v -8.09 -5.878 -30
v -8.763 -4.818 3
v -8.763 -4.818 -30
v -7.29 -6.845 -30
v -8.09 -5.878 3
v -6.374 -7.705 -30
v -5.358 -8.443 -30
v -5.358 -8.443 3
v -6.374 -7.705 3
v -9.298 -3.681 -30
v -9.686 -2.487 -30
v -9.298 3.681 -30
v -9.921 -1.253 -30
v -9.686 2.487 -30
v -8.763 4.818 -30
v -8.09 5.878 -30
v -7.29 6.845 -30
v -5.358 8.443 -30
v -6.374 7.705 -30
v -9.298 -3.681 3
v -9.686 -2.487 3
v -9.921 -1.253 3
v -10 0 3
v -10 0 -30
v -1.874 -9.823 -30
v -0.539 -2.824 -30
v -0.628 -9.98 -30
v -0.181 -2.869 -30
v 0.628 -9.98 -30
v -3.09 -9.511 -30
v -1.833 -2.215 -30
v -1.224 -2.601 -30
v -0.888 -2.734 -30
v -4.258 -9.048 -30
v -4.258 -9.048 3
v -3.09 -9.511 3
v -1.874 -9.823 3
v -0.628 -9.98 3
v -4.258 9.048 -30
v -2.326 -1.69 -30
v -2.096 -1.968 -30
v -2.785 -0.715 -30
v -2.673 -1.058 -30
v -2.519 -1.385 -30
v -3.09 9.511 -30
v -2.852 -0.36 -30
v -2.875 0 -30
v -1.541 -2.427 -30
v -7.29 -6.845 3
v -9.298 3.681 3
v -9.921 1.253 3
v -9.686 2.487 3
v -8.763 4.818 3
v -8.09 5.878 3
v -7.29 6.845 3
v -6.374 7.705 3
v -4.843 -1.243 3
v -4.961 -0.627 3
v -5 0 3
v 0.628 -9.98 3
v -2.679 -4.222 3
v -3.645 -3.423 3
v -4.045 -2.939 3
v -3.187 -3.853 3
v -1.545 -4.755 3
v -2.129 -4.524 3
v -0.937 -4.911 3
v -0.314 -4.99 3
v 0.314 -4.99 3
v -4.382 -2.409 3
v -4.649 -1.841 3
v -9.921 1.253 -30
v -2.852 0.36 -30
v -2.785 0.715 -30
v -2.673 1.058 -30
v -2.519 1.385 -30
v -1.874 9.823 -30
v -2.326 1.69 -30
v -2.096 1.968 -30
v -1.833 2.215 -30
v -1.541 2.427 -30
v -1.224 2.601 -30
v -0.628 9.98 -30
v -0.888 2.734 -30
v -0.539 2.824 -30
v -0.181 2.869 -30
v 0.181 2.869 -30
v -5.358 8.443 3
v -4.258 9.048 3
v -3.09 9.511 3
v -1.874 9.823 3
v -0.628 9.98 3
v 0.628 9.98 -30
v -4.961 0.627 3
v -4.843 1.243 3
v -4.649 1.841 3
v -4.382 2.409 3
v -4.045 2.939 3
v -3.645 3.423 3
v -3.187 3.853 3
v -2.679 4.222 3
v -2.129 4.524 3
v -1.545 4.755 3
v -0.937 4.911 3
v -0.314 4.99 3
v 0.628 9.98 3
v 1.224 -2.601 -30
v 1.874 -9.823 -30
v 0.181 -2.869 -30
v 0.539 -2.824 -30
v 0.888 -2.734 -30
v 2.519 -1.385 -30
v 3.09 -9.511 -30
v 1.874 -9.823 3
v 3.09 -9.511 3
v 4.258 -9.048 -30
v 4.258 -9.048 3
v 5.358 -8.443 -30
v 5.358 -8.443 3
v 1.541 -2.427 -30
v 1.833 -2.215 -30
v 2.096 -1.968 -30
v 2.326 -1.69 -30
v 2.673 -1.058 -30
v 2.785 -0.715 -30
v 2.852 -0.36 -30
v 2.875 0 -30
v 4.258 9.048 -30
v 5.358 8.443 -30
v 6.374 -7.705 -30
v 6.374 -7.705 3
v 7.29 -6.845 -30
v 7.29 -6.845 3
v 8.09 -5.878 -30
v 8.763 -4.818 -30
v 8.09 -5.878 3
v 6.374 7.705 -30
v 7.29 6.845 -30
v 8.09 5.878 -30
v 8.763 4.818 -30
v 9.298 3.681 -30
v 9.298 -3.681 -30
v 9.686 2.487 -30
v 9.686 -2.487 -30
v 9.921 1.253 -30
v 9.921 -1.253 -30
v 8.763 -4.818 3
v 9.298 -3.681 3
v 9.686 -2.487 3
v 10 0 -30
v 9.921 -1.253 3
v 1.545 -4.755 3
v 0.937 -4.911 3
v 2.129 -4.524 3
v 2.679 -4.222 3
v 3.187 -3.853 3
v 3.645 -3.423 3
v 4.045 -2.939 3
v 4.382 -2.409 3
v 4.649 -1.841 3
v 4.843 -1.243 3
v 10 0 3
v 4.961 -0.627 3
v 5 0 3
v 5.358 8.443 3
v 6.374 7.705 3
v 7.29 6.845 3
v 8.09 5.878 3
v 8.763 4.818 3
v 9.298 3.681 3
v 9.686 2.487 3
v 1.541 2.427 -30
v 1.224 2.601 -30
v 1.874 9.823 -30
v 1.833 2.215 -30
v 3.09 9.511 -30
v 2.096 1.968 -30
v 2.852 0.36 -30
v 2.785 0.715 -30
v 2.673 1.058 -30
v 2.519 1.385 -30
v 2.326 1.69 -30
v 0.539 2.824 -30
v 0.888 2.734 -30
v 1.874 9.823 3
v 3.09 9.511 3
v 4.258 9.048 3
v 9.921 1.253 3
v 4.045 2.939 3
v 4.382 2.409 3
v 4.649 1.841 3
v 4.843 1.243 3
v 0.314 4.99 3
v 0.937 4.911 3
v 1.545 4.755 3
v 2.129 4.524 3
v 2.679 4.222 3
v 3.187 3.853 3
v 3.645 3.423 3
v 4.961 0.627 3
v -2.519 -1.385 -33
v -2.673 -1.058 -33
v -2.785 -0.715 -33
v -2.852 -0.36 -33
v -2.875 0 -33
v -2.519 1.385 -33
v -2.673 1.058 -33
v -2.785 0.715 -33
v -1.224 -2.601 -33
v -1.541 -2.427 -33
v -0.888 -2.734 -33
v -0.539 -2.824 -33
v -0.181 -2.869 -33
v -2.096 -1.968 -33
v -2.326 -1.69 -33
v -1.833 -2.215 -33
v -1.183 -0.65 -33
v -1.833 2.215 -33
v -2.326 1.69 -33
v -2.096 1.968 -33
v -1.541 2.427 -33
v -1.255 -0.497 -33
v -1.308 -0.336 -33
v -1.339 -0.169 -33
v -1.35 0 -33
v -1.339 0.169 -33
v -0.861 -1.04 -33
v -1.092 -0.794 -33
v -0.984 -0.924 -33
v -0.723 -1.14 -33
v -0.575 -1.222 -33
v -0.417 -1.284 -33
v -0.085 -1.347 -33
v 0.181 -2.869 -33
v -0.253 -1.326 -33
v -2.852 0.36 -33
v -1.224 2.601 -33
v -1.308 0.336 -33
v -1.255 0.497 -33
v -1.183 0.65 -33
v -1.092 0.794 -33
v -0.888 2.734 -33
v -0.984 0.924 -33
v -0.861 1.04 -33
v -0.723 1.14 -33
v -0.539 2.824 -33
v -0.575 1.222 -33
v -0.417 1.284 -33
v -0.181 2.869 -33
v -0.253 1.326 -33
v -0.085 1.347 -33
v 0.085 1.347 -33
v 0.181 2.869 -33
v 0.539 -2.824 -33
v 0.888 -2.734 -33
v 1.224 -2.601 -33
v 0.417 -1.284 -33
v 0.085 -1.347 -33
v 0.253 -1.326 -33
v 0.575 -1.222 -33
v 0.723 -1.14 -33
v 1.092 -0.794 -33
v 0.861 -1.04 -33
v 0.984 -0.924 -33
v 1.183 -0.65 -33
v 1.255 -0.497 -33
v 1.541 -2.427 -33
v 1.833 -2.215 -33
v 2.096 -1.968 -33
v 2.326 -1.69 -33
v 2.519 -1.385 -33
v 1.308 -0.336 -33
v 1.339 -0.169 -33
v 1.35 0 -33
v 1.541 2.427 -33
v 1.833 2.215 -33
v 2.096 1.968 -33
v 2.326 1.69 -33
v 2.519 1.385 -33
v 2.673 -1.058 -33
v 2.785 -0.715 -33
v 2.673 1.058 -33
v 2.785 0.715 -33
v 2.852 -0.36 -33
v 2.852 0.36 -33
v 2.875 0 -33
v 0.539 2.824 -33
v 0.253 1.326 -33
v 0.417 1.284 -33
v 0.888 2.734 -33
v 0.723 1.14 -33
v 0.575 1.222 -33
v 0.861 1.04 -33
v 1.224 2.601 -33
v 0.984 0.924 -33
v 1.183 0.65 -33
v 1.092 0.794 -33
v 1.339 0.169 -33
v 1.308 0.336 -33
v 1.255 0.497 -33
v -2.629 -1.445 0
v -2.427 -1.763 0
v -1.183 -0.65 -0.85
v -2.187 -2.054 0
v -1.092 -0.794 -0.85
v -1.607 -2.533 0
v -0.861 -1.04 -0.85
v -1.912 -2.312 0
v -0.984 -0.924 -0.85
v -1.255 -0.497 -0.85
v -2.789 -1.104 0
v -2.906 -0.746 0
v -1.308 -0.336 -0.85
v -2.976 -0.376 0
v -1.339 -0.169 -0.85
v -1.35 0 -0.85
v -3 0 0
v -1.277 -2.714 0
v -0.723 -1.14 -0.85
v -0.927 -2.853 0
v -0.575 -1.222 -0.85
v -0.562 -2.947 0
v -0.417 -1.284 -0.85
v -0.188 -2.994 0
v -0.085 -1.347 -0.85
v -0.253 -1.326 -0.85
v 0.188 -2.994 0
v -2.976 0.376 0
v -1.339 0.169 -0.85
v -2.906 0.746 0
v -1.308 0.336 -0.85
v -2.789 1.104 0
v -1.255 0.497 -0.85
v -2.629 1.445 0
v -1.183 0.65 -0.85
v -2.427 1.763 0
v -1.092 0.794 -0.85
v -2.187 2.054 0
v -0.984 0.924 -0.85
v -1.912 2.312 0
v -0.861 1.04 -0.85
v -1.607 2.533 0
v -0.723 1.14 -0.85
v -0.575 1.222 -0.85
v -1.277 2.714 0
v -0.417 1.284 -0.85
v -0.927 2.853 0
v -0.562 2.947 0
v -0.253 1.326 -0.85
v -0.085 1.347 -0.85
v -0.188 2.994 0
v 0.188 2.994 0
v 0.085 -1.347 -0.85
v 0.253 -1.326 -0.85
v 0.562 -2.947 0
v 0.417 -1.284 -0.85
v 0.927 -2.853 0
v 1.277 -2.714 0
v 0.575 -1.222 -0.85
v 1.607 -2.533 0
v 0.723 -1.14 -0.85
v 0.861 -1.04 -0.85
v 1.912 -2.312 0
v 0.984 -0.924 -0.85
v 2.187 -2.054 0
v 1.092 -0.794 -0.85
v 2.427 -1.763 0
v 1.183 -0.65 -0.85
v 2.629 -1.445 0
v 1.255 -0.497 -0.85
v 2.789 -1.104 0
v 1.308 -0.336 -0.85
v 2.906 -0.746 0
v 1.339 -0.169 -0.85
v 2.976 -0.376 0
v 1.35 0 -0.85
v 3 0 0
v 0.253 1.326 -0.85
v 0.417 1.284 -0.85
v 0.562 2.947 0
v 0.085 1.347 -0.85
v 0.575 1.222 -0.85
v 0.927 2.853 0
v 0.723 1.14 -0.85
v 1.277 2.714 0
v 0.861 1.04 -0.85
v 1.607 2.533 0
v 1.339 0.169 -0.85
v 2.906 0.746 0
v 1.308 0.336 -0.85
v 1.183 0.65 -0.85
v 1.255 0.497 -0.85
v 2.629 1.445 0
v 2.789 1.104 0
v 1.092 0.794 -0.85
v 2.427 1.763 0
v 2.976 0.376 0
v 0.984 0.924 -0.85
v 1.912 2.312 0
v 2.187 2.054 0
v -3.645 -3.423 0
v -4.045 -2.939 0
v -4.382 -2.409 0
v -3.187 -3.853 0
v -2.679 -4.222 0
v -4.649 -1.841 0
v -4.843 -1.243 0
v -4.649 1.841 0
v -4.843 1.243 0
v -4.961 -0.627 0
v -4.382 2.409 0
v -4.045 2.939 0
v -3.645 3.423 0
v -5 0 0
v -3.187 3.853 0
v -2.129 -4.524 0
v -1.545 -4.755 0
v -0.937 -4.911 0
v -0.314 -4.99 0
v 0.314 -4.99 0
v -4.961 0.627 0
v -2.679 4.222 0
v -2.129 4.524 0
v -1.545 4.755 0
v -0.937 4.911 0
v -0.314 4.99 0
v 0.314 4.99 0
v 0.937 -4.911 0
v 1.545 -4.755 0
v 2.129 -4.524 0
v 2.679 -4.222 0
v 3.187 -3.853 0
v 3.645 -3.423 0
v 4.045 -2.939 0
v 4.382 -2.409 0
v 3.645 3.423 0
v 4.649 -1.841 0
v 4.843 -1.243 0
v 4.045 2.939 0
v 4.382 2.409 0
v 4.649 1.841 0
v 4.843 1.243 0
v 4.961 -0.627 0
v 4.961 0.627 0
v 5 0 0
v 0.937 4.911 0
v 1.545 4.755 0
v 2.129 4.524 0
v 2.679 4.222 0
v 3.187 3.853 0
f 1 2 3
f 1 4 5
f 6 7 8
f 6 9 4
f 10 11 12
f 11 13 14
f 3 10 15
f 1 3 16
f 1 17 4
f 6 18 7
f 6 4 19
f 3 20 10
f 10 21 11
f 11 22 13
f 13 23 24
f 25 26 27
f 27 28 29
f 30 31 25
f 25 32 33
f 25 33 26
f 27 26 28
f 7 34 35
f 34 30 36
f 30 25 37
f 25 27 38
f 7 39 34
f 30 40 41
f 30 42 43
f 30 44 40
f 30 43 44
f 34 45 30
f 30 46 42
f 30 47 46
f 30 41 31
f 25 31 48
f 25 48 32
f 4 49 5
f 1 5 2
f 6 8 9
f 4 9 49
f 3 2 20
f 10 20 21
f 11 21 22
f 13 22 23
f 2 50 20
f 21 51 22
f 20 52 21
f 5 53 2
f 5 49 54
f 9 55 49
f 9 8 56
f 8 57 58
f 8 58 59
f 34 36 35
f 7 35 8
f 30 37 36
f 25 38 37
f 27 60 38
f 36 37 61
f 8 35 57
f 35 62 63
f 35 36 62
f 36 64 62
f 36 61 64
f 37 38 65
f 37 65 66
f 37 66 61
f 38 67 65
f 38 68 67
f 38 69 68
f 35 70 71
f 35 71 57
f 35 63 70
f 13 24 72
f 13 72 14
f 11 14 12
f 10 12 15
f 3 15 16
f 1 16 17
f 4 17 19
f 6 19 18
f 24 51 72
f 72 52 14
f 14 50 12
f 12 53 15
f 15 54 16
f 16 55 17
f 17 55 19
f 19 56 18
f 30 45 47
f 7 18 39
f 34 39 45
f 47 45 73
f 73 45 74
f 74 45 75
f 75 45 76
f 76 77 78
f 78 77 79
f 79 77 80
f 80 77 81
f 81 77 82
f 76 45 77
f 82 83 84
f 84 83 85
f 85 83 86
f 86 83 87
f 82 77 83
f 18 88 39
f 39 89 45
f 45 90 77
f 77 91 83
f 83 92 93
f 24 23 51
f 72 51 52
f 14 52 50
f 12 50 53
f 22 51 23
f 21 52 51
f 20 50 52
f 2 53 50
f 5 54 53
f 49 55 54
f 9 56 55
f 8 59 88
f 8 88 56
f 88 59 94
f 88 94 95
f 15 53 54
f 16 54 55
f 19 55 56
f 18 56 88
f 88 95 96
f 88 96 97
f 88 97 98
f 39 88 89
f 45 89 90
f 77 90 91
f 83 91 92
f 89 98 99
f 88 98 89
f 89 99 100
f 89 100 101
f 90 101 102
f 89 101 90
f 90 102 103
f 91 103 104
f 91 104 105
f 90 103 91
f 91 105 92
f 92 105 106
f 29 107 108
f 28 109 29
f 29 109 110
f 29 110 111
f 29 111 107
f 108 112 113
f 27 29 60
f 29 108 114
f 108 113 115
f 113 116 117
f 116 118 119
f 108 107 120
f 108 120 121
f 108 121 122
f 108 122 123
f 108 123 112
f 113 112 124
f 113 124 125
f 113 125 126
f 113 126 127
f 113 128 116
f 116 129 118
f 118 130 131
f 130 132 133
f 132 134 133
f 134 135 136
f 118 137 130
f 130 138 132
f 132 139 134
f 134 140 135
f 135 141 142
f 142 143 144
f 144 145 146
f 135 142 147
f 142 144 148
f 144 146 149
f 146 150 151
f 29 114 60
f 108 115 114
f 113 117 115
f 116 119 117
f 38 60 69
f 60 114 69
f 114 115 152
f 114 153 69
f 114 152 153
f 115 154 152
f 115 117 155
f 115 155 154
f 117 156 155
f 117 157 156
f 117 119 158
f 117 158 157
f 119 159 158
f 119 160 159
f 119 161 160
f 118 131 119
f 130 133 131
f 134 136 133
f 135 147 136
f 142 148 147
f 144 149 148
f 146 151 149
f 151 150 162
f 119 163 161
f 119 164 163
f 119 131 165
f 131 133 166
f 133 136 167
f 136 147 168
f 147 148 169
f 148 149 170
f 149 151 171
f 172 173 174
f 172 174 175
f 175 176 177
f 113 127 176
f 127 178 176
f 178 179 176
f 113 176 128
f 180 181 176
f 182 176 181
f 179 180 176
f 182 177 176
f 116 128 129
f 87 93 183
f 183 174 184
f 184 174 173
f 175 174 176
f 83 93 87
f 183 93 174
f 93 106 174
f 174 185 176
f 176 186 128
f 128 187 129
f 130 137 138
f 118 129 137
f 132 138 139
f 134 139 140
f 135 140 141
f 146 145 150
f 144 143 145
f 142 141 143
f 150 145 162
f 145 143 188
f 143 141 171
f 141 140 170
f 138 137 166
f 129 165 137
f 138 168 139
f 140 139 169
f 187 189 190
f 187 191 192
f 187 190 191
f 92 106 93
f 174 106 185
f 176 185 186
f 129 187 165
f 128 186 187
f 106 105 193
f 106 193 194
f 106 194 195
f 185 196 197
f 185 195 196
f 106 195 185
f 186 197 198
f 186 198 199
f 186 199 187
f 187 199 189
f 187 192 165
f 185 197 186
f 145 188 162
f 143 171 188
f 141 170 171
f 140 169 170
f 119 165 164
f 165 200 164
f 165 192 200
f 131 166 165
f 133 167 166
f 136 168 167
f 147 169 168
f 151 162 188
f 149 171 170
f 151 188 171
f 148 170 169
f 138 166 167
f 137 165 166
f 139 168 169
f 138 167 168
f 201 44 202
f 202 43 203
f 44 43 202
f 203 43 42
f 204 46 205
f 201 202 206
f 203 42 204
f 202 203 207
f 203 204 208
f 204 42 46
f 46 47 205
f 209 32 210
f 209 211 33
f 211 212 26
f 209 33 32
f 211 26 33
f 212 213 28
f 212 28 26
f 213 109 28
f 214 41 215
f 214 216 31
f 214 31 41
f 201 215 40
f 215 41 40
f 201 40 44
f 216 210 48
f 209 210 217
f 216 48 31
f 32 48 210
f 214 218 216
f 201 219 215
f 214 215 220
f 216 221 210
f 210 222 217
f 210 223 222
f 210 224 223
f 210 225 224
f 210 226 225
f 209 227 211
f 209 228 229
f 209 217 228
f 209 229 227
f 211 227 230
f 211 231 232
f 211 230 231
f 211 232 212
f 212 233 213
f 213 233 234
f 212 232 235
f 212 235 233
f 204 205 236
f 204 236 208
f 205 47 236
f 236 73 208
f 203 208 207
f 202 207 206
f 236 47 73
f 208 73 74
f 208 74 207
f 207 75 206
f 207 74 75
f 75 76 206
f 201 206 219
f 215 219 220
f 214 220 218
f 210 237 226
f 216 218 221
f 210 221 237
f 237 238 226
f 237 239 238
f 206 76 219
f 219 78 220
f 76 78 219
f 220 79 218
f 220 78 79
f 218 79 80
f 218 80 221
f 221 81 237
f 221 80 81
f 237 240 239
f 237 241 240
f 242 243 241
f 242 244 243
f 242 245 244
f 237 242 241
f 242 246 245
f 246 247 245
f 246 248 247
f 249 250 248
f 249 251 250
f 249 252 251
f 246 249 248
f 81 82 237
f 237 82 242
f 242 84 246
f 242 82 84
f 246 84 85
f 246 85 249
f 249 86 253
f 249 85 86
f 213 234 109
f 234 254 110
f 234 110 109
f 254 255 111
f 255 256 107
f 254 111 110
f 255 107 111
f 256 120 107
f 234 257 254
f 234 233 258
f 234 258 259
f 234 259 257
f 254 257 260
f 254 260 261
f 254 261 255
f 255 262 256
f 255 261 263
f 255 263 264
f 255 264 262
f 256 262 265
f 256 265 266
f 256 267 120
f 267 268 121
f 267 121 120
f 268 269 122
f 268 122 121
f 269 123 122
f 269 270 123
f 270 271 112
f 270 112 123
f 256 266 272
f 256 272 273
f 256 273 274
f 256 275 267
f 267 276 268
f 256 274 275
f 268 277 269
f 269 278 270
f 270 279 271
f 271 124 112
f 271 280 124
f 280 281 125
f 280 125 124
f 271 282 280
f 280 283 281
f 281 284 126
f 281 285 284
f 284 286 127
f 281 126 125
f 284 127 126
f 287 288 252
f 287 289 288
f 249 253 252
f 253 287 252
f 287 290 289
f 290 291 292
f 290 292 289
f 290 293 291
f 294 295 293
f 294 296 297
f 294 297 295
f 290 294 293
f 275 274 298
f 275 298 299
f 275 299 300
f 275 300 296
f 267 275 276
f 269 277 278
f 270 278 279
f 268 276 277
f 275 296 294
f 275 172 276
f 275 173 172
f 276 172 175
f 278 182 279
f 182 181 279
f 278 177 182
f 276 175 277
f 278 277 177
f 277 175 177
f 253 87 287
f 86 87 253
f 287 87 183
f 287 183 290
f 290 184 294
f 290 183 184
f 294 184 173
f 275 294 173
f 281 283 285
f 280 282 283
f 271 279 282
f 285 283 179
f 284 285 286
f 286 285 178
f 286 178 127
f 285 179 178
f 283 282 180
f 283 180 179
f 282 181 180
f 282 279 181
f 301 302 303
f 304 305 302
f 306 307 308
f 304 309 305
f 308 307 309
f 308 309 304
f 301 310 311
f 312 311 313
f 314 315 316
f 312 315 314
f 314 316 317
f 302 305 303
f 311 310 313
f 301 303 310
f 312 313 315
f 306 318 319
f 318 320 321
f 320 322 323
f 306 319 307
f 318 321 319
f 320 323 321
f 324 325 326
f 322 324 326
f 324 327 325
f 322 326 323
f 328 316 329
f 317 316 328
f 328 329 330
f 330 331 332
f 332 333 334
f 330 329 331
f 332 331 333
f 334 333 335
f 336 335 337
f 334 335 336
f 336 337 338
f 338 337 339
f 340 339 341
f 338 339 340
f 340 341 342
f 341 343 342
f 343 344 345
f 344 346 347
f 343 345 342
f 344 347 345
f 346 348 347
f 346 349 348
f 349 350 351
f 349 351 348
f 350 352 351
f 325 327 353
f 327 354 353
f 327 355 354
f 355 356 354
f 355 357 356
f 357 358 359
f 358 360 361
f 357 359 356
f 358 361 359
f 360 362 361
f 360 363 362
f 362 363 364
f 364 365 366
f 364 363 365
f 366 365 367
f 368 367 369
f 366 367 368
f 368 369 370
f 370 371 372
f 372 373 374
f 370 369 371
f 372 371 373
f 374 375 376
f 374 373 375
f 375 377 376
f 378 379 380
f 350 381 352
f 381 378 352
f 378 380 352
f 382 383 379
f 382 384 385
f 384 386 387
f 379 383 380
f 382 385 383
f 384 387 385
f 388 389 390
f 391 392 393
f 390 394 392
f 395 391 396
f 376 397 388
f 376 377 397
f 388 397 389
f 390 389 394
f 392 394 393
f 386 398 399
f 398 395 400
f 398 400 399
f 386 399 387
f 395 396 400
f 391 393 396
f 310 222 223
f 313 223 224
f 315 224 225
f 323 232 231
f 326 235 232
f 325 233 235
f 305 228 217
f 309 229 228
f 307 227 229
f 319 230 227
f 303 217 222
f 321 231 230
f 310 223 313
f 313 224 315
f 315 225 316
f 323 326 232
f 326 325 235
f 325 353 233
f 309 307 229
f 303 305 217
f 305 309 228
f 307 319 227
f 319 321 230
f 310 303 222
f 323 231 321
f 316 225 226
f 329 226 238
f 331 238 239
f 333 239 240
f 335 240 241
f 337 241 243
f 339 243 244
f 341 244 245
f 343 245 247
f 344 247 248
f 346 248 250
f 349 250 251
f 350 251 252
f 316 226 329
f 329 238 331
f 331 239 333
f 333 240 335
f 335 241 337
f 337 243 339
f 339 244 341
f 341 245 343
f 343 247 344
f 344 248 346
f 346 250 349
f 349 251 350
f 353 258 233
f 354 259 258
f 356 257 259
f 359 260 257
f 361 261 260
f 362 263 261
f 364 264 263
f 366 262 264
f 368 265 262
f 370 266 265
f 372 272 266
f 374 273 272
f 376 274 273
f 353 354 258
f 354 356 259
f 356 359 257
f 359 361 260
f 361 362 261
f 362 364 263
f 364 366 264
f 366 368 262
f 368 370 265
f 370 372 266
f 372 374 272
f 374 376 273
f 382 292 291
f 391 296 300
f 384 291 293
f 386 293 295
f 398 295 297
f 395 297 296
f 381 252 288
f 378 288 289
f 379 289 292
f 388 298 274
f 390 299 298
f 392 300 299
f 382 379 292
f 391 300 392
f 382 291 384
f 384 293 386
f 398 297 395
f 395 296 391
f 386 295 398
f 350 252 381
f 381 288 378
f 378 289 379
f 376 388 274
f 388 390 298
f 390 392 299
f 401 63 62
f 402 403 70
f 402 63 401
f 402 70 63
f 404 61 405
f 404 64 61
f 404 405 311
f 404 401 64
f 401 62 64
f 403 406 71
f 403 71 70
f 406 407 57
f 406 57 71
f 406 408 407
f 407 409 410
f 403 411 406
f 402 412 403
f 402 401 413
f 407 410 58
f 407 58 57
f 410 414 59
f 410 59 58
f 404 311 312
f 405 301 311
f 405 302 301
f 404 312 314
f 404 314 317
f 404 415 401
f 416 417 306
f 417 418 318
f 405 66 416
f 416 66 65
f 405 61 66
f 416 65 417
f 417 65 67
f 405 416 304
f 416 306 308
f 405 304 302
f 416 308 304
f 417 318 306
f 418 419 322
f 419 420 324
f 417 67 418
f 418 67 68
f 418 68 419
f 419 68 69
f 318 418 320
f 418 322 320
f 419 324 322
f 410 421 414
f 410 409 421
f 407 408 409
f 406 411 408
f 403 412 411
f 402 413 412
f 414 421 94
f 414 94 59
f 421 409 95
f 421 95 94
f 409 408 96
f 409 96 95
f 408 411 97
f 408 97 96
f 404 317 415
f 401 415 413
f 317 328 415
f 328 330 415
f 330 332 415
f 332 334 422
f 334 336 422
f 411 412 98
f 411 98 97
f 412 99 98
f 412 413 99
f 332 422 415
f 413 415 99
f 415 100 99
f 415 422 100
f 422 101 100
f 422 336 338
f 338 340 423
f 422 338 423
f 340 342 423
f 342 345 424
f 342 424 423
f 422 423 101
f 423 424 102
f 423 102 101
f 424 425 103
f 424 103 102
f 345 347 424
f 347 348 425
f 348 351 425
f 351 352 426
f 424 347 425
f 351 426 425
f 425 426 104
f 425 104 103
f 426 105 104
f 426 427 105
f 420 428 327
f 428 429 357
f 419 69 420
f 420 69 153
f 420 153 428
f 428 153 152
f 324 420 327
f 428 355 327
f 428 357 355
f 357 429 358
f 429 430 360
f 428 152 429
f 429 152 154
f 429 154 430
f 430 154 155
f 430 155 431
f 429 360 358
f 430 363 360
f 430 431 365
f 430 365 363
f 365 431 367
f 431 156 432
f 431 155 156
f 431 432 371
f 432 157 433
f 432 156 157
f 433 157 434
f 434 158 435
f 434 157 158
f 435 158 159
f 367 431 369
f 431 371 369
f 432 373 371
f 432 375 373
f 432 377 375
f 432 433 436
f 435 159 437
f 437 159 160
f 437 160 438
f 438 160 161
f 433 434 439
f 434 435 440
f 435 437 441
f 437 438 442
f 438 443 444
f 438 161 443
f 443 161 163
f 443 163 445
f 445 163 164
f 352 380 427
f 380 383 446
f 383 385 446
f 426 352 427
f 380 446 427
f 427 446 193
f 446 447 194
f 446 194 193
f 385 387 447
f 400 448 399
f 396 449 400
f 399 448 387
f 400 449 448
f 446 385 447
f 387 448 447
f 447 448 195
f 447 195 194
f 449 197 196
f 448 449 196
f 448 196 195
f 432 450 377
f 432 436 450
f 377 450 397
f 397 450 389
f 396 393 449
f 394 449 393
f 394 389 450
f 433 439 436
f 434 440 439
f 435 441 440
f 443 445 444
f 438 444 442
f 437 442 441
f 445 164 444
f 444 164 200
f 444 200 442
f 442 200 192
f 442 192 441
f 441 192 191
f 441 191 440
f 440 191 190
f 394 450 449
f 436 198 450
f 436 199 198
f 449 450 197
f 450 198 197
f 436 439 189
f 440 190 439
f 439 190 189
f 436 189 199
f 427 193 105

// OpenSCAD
$fn = 50;


difference() {
	union() {
		translate(v = [0, 0, -30.0000000000]) {
			cylinder(h = 33, r = 10.0000000000);
		}
		#translate(v = [0, 0, -33.0000000000]) {
			cylinder(h = 33, r = 2.8750000000);
		}
	}
	union() {
		translate(v = [0, 0, 0]) {
			rotate(a = [0, 0, 0]) {
				difference() {
					union() {
						translate(v = [0, 0, -33.0000000000]) {
							cylinder(h = 33, r = 1.0000000000);
						}
						translate(v = [0, 0, -0.8500000000]) {
							cylinder(h = 0.8500000000, r1 = 1.3500000000, r2 = 3.0000000000);
						}
						translate(v = [0, 0, -33.0000000000]) {
							cylinder(h = 33, r = 1.3500000000);
						}
						translate(v = [0, 0, -33.0000000000]) {
							cylinder(h = 33, r = 1.0000000000);
						}
					}
					union();
				}
			}
		}
		#cylinder(h = 3, r = 5.0000000000);
	}
}
